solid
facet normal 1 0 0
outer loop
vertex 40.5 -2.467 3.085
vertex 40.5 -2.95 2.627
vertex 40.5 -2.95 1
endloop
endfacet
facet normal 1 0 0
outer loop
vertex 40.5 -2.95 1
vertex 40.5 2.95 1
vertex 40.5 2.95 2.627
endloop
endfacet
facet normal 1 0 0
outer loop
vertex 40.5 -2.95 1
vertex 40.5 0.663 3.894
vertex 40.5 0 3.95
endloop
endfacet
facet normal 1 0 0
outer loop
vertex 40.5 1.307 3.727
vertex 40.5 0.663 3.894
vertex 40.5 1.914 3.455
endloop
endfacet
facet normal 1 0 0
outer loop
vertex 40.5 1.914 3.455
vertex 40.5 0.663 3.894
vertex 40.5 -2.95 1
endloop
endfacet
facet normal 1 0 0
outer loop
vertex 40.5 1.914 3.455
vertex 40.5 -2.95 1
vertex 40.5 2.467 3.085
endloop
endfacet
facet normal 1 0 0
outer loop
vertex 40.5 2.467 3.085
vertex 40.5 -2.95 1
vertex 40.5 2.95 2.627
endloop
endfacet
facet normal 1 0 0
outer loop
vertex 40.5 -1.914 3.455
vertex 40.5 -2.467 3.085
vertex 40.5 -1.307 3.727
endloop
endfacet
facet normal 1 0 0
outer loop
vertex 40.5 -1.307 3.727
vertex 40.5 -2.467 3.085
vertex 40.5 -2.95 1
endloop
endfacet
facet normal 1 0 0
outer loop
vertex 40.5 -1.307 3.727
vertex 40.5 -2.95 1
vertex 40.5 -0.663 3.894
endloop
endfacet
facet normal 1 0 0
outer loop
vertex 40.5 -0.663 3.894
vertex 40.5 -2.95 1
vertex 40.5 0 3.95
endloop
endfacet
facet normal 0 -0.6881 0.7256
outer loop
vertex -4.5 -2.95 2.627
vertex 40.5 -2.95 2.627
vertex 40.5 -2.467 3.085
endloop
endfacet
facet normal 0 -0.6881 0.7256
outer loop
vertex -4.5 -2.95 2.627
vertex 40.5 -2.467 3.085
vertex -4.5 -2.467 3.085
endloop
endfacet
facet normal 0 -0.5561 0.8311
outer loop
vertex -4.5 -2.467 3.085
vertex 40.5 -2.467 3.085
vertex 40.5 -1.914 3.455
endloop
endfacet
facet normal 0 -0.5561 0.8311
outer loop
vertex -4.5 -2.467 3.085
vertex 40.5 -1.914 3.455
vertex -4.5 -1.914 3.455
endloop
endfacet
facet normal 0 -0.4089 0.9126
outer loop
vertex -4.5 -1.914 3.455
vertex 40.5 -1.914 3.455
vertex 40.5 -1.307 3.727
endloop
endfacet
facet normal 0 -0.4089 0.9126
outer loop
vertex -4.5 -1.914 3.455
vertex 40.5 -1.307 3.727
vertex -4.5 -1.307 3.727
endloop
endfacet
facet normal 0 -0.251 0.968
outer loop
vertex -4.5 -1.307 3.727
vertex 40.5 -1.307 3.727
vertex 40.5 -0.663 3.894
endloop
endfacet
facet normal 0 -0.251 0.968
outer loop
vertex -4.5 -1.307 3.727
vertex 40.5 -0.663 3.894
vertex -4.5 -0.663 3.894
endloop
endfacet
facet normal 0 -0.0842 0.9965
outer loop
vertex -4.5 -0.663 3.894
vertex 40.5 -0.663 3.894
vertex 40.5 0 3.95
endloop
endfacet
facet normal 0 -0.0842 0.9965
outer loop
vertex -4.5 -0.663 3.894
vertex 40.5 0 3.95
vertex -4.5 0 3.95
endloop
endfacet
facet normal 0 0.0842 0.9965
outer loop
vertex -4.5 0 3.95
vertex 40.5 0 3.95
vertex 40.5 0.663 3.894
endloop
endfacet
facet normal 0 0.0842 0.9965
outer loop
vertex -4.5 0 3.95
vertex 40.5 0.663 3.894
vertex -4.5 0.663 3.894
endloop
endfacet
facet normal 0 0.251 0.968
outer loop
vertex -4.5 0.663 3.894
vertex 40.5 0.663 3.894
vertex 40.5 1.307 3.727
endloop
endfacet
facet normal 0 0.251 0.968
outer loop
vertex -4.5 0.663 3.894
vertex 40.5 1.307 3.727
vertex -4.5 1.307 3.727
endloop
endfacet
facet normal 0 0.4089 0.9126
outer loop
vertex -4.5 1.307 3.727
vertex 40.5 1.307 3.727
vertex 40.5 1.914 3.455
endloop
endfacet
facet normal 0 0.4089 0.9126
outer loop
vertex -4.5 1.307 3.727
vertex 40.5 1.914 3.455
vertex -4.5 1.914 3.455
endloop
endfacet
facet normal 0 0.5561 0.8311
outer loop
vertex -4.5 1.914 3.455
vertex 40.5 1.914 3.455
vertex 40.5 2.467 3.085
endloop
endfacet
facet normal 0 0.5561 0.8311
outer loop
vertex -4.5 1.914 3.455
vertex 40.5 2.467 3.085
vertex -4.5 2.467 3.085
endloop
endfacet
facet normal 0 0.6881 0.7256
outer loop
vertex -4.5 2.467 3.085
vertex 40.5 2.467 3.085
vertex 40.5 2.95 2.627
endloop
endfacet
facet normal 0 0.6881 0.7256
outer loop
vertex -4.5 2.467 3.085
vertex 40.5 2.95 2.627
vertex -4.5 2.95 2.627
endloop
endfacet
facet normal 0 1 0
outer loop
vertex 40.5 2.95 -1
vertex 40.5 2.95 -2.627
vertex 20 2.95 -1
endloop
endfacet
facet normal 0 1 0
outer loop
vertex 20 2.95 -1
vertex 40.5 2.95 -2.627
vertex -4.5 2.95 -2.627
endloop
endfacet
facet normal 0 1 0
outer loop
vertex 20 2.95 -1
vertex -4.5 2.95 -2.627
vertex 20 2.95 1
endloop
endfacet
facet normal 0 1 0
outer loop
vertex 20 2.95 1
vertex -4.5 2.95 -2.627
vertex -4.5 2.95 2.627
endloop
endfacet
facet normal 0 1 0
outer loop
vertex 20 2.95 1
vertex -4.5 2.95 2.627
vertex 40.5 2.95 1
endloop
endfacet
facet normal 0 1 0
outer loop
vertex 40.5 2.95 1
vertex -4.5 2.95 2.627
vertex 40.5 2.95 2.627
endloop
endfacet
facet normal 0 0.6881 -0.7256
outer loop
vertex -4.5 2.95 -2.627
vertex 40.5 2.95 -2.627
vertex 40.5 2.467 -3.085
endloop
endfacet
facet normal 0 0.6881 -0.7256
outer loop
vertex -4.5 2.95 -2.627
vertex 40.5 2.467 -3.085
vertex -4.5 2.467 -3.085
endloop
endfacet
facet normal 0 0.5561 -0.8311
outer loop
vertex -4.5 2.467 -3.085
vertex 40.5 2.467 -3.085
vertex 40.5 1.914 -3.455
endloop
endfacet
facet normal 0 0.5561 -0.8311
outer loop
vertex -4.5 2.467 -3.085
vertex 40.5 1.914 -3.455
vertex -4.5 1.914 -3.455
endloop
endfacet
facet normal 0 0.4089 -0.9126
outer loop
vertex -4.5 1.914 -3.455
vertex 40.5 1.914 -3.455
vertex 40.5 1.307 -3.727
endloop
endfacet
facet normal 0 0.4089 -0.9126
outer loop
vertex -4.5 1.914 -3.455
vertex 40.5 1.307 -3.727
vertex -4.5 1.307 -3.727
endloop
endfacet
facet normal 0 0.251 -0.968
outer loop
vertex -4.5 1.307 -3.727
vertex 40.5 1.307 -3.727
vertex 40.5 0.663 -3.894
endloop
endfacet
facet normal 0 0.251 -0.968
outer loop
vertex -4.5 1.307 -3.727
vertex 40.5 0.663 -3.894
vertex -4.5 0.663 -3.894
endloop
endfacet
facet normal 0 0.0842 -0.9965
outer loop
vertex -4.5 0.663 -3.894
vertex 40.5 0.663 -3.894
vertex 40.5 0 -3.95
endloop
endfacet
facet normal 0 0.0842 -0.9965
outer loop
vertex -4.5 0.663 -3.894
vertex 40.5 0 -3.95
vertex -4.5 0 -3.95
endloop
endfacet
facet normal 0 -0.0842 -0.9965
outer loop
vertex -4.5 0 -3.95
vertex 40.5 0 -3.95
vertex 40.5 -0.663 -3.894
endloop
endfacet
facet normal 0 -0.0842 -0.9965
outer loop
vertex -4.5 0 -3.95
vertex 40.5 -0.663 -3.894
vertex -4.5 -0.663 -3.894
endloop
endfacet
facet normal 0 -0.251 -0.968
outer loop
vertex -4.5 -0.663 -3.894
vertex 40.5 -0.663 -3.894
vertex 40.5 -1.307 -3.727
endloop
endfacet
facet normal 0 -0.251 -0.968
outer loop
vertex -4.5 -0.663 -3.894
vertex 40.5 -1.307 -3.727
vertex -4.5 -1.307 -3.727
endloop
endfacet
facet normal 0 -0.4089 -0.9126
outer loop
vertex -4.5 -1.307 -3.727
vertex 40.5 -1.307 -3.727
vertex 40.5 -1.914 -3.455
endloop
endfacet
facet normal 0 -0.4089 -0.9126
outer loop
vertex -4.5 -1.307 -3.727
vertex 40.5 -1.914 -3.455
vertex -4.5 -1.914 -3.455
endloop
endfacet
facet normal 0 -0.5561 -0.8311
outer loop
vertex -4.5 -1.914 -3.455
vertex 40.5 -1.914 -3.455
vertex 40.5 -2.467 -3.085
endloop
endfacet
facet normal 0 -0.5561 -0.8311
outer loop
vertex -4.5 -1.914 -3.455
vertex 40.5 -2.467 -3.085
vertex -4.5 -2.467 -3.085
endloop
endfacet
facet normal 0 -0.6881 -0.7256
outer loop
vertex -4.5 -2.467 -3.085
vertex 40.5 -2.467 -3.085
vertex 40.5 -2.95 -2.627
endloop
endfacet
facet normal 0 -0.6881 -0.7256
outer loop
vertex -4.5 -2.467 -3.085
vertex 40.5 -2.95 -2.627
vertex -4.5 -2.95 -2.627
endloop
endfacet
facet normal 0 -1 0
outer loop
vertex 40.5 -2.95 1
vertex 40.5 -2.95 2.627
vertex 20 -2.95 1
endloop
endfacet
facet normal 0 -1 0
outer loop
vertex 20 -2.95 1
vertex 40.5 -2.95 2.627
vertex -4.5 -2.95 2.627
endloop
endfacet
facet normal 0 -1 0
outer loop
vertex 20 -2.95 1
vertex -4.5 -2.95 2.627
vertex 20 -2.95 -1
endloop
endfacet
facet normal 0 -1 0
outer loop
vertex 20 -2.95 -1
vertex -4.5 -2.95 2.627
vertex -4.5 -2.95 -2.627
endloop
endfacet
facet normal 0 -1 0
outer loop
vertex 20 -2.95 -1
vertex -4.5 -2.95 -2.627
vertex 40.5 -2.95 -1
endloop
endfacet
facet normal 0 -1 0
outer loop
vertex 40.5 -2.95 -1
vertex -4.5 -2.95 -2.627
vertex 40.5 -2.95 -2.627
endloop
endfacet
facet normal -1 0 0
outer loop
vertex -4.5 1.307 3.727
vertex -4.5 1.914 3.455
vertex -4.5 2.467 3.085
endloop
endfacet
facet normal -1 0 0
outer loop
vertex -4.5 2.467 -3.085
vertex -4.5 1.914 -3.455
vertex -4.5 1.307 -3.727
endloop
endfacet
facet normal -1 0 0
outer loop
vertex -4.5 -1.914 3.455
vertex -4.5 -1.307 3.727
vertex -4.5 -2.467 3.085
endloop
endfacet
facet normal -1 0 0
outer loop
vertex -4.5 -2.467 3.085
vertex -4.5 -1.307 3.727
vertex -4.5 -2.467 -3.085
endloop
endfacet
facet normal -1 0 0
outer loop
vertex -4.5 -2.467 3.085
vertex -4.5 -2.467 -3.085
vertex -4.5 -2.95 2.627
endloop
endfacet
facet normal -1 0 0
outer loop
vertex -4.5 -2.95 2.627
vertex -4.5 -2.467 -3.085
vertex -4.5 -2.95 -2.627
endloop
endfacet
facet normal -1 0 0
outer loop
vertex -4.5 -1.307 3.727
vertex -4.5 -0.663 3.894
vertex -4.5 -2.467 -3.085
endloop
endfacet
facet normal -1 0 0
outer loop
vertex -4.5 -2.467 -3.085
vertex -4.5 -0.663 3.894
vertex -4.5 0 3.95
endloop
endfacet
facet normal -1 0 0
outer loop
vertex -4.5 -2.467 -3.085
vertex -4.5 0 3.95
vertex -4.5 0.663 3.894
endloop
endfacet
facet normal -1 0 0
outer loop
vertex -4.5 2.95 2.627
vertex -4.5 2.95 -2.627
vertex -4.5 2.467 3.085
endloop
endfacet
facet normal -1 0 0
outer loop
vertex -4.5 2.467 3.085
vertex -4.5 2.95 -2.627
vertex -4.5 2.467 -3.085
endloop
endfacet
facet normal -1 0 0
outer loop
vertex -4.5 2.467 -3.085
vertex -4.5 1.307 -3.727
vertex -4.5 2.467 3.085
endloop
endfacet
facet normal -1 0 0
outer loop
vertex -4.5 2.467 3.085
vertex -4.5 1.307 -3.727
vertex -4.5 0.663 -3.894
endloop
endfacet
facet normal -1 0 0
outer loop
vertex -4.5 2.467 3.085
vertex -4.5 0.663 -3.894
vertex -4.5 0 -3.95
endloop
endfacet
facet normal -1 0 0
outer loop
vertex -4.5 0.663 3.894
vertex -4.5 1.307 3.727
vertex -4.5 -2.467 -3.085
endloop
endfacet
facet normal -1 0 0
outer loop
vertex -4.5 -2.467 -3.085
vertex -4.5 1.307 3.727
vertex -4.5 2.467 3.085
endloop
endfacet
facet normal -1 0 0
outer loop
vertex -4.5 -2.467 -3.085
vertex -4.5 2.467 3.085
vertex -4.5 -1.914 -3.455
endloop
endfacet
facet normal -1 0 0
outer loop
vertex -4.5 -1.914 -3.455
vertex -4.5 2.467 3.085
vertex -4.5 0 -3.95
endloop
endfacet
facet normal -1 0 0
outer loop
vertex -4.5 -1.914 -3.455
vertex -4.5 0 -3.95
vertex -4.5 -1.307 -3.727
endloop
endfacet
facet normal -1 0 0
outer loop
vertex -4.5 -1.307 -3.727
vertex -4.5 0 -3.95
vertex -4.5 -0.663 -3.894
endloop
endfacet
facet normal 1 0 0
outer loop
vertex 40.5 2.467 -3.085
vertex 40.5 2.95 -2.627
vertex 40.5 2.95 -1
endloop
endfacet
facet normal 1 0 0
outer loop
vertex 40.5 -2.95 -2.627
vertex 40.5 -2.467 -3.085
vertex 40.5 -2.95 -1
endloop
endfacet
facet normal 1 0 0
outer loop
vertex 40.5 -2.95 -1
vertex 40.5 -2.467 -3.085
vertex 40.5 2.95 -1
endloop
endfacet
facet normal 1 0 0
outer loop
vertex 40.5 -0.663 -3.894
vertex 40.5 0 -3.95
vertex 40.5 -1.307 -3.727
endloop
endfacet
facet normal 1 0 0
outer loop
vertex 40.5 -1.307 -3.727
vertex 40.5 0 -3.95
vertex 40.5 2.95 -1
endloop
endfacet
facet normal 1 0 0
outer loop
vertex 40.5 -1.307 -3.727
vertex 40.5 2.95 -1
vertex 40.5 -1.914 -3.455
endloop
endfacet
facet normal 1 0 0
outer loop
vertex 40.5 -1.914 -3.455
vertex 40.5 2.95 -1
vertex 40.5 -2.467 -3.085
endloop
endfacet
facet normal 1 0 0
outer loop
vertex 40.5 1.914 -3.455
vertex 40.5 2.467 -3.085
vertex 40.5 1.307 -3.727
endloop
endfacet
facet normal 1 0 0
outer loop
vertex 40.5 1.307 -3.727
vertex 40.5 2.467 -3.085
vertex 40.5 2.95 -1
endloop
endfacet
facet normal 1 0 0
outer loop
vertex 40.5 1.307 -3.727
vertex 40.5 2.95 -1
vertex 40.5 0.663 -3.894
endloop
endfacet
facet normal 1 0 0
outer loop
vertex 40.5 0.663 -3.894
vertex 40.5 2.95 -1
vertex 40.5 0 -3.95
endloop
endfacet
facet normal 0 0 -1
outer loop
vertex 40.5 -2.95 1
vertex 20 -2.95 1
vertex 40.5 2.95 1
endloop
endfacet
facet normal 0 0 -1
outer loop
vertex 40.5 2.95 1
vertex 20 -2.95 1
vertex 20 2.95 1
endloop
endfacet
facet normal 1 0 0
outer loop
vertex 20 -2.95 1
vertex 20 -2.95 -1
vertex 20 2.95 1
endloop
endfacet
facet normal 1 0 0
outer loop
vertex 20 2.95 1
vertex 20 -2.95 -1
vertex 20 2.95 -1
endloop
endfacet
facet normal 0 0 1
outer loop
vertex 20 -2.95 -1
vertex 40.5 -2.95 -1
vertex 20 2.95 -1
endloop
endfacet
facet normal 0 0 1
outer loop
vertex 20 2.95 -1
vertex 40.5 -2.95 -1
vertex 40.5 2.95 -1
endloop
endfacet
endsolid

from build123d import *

# Parameters (mm, degrees)
BOSS_EXTRUDE1_DEPTH      = 40.5
BOSS_EXTRUDE1_DEPTH_BACK = 4.5
CUT_EXTRUDE2_DEPTH       = 42.117666519


with BuildPart() as part:
    # Sketch1 → Boss-Extrude1 (new, two sides: drawn at the far end of the back side and taken through both)
    with BuildSketch(Plane(origin=(0, 0, 0), x_dir=(0, 0, -1), z_dir=(1, 0, 0)).offset(-BOSS_EXTRUDE1_DEPTH_BACK)):
        with BuildLine():
            Line((-2.626785107, 2.95), (2.626785107, 2.95))
            ThreePointArc((2.626785107, 2.95), (3.95, 0), (2.626785107, -2.95))
            Line((2.626785107, -2.95), (-2.626785107, -2.95))
            ThreePointArc((-2.626785107, -2.95), (-3.95, 0), (-2.626785107, 2.95))
        make_face()
    extrude(amount=BOSS_EXTRUDE1_DEPTH + BOSS_EXTRUDE1_DEPTH_BACK)

    # Sketch5 → Cut-Extrude2 (cut, through all)
    with BuildSketch(Plane(origin=(0, 2.95, 0), x_dir=(1, 0, 0), z_dir=(0, 1, 0))):
        Polygon((40.5, 0), (40.5, 1), (20, 1), (20, -1), (40.5, -1), align=None)
    extrude(amount=-CUT_EXTRUDE2_DEPTH, mode=Mode.SUBTRACT)


solid = part.part
